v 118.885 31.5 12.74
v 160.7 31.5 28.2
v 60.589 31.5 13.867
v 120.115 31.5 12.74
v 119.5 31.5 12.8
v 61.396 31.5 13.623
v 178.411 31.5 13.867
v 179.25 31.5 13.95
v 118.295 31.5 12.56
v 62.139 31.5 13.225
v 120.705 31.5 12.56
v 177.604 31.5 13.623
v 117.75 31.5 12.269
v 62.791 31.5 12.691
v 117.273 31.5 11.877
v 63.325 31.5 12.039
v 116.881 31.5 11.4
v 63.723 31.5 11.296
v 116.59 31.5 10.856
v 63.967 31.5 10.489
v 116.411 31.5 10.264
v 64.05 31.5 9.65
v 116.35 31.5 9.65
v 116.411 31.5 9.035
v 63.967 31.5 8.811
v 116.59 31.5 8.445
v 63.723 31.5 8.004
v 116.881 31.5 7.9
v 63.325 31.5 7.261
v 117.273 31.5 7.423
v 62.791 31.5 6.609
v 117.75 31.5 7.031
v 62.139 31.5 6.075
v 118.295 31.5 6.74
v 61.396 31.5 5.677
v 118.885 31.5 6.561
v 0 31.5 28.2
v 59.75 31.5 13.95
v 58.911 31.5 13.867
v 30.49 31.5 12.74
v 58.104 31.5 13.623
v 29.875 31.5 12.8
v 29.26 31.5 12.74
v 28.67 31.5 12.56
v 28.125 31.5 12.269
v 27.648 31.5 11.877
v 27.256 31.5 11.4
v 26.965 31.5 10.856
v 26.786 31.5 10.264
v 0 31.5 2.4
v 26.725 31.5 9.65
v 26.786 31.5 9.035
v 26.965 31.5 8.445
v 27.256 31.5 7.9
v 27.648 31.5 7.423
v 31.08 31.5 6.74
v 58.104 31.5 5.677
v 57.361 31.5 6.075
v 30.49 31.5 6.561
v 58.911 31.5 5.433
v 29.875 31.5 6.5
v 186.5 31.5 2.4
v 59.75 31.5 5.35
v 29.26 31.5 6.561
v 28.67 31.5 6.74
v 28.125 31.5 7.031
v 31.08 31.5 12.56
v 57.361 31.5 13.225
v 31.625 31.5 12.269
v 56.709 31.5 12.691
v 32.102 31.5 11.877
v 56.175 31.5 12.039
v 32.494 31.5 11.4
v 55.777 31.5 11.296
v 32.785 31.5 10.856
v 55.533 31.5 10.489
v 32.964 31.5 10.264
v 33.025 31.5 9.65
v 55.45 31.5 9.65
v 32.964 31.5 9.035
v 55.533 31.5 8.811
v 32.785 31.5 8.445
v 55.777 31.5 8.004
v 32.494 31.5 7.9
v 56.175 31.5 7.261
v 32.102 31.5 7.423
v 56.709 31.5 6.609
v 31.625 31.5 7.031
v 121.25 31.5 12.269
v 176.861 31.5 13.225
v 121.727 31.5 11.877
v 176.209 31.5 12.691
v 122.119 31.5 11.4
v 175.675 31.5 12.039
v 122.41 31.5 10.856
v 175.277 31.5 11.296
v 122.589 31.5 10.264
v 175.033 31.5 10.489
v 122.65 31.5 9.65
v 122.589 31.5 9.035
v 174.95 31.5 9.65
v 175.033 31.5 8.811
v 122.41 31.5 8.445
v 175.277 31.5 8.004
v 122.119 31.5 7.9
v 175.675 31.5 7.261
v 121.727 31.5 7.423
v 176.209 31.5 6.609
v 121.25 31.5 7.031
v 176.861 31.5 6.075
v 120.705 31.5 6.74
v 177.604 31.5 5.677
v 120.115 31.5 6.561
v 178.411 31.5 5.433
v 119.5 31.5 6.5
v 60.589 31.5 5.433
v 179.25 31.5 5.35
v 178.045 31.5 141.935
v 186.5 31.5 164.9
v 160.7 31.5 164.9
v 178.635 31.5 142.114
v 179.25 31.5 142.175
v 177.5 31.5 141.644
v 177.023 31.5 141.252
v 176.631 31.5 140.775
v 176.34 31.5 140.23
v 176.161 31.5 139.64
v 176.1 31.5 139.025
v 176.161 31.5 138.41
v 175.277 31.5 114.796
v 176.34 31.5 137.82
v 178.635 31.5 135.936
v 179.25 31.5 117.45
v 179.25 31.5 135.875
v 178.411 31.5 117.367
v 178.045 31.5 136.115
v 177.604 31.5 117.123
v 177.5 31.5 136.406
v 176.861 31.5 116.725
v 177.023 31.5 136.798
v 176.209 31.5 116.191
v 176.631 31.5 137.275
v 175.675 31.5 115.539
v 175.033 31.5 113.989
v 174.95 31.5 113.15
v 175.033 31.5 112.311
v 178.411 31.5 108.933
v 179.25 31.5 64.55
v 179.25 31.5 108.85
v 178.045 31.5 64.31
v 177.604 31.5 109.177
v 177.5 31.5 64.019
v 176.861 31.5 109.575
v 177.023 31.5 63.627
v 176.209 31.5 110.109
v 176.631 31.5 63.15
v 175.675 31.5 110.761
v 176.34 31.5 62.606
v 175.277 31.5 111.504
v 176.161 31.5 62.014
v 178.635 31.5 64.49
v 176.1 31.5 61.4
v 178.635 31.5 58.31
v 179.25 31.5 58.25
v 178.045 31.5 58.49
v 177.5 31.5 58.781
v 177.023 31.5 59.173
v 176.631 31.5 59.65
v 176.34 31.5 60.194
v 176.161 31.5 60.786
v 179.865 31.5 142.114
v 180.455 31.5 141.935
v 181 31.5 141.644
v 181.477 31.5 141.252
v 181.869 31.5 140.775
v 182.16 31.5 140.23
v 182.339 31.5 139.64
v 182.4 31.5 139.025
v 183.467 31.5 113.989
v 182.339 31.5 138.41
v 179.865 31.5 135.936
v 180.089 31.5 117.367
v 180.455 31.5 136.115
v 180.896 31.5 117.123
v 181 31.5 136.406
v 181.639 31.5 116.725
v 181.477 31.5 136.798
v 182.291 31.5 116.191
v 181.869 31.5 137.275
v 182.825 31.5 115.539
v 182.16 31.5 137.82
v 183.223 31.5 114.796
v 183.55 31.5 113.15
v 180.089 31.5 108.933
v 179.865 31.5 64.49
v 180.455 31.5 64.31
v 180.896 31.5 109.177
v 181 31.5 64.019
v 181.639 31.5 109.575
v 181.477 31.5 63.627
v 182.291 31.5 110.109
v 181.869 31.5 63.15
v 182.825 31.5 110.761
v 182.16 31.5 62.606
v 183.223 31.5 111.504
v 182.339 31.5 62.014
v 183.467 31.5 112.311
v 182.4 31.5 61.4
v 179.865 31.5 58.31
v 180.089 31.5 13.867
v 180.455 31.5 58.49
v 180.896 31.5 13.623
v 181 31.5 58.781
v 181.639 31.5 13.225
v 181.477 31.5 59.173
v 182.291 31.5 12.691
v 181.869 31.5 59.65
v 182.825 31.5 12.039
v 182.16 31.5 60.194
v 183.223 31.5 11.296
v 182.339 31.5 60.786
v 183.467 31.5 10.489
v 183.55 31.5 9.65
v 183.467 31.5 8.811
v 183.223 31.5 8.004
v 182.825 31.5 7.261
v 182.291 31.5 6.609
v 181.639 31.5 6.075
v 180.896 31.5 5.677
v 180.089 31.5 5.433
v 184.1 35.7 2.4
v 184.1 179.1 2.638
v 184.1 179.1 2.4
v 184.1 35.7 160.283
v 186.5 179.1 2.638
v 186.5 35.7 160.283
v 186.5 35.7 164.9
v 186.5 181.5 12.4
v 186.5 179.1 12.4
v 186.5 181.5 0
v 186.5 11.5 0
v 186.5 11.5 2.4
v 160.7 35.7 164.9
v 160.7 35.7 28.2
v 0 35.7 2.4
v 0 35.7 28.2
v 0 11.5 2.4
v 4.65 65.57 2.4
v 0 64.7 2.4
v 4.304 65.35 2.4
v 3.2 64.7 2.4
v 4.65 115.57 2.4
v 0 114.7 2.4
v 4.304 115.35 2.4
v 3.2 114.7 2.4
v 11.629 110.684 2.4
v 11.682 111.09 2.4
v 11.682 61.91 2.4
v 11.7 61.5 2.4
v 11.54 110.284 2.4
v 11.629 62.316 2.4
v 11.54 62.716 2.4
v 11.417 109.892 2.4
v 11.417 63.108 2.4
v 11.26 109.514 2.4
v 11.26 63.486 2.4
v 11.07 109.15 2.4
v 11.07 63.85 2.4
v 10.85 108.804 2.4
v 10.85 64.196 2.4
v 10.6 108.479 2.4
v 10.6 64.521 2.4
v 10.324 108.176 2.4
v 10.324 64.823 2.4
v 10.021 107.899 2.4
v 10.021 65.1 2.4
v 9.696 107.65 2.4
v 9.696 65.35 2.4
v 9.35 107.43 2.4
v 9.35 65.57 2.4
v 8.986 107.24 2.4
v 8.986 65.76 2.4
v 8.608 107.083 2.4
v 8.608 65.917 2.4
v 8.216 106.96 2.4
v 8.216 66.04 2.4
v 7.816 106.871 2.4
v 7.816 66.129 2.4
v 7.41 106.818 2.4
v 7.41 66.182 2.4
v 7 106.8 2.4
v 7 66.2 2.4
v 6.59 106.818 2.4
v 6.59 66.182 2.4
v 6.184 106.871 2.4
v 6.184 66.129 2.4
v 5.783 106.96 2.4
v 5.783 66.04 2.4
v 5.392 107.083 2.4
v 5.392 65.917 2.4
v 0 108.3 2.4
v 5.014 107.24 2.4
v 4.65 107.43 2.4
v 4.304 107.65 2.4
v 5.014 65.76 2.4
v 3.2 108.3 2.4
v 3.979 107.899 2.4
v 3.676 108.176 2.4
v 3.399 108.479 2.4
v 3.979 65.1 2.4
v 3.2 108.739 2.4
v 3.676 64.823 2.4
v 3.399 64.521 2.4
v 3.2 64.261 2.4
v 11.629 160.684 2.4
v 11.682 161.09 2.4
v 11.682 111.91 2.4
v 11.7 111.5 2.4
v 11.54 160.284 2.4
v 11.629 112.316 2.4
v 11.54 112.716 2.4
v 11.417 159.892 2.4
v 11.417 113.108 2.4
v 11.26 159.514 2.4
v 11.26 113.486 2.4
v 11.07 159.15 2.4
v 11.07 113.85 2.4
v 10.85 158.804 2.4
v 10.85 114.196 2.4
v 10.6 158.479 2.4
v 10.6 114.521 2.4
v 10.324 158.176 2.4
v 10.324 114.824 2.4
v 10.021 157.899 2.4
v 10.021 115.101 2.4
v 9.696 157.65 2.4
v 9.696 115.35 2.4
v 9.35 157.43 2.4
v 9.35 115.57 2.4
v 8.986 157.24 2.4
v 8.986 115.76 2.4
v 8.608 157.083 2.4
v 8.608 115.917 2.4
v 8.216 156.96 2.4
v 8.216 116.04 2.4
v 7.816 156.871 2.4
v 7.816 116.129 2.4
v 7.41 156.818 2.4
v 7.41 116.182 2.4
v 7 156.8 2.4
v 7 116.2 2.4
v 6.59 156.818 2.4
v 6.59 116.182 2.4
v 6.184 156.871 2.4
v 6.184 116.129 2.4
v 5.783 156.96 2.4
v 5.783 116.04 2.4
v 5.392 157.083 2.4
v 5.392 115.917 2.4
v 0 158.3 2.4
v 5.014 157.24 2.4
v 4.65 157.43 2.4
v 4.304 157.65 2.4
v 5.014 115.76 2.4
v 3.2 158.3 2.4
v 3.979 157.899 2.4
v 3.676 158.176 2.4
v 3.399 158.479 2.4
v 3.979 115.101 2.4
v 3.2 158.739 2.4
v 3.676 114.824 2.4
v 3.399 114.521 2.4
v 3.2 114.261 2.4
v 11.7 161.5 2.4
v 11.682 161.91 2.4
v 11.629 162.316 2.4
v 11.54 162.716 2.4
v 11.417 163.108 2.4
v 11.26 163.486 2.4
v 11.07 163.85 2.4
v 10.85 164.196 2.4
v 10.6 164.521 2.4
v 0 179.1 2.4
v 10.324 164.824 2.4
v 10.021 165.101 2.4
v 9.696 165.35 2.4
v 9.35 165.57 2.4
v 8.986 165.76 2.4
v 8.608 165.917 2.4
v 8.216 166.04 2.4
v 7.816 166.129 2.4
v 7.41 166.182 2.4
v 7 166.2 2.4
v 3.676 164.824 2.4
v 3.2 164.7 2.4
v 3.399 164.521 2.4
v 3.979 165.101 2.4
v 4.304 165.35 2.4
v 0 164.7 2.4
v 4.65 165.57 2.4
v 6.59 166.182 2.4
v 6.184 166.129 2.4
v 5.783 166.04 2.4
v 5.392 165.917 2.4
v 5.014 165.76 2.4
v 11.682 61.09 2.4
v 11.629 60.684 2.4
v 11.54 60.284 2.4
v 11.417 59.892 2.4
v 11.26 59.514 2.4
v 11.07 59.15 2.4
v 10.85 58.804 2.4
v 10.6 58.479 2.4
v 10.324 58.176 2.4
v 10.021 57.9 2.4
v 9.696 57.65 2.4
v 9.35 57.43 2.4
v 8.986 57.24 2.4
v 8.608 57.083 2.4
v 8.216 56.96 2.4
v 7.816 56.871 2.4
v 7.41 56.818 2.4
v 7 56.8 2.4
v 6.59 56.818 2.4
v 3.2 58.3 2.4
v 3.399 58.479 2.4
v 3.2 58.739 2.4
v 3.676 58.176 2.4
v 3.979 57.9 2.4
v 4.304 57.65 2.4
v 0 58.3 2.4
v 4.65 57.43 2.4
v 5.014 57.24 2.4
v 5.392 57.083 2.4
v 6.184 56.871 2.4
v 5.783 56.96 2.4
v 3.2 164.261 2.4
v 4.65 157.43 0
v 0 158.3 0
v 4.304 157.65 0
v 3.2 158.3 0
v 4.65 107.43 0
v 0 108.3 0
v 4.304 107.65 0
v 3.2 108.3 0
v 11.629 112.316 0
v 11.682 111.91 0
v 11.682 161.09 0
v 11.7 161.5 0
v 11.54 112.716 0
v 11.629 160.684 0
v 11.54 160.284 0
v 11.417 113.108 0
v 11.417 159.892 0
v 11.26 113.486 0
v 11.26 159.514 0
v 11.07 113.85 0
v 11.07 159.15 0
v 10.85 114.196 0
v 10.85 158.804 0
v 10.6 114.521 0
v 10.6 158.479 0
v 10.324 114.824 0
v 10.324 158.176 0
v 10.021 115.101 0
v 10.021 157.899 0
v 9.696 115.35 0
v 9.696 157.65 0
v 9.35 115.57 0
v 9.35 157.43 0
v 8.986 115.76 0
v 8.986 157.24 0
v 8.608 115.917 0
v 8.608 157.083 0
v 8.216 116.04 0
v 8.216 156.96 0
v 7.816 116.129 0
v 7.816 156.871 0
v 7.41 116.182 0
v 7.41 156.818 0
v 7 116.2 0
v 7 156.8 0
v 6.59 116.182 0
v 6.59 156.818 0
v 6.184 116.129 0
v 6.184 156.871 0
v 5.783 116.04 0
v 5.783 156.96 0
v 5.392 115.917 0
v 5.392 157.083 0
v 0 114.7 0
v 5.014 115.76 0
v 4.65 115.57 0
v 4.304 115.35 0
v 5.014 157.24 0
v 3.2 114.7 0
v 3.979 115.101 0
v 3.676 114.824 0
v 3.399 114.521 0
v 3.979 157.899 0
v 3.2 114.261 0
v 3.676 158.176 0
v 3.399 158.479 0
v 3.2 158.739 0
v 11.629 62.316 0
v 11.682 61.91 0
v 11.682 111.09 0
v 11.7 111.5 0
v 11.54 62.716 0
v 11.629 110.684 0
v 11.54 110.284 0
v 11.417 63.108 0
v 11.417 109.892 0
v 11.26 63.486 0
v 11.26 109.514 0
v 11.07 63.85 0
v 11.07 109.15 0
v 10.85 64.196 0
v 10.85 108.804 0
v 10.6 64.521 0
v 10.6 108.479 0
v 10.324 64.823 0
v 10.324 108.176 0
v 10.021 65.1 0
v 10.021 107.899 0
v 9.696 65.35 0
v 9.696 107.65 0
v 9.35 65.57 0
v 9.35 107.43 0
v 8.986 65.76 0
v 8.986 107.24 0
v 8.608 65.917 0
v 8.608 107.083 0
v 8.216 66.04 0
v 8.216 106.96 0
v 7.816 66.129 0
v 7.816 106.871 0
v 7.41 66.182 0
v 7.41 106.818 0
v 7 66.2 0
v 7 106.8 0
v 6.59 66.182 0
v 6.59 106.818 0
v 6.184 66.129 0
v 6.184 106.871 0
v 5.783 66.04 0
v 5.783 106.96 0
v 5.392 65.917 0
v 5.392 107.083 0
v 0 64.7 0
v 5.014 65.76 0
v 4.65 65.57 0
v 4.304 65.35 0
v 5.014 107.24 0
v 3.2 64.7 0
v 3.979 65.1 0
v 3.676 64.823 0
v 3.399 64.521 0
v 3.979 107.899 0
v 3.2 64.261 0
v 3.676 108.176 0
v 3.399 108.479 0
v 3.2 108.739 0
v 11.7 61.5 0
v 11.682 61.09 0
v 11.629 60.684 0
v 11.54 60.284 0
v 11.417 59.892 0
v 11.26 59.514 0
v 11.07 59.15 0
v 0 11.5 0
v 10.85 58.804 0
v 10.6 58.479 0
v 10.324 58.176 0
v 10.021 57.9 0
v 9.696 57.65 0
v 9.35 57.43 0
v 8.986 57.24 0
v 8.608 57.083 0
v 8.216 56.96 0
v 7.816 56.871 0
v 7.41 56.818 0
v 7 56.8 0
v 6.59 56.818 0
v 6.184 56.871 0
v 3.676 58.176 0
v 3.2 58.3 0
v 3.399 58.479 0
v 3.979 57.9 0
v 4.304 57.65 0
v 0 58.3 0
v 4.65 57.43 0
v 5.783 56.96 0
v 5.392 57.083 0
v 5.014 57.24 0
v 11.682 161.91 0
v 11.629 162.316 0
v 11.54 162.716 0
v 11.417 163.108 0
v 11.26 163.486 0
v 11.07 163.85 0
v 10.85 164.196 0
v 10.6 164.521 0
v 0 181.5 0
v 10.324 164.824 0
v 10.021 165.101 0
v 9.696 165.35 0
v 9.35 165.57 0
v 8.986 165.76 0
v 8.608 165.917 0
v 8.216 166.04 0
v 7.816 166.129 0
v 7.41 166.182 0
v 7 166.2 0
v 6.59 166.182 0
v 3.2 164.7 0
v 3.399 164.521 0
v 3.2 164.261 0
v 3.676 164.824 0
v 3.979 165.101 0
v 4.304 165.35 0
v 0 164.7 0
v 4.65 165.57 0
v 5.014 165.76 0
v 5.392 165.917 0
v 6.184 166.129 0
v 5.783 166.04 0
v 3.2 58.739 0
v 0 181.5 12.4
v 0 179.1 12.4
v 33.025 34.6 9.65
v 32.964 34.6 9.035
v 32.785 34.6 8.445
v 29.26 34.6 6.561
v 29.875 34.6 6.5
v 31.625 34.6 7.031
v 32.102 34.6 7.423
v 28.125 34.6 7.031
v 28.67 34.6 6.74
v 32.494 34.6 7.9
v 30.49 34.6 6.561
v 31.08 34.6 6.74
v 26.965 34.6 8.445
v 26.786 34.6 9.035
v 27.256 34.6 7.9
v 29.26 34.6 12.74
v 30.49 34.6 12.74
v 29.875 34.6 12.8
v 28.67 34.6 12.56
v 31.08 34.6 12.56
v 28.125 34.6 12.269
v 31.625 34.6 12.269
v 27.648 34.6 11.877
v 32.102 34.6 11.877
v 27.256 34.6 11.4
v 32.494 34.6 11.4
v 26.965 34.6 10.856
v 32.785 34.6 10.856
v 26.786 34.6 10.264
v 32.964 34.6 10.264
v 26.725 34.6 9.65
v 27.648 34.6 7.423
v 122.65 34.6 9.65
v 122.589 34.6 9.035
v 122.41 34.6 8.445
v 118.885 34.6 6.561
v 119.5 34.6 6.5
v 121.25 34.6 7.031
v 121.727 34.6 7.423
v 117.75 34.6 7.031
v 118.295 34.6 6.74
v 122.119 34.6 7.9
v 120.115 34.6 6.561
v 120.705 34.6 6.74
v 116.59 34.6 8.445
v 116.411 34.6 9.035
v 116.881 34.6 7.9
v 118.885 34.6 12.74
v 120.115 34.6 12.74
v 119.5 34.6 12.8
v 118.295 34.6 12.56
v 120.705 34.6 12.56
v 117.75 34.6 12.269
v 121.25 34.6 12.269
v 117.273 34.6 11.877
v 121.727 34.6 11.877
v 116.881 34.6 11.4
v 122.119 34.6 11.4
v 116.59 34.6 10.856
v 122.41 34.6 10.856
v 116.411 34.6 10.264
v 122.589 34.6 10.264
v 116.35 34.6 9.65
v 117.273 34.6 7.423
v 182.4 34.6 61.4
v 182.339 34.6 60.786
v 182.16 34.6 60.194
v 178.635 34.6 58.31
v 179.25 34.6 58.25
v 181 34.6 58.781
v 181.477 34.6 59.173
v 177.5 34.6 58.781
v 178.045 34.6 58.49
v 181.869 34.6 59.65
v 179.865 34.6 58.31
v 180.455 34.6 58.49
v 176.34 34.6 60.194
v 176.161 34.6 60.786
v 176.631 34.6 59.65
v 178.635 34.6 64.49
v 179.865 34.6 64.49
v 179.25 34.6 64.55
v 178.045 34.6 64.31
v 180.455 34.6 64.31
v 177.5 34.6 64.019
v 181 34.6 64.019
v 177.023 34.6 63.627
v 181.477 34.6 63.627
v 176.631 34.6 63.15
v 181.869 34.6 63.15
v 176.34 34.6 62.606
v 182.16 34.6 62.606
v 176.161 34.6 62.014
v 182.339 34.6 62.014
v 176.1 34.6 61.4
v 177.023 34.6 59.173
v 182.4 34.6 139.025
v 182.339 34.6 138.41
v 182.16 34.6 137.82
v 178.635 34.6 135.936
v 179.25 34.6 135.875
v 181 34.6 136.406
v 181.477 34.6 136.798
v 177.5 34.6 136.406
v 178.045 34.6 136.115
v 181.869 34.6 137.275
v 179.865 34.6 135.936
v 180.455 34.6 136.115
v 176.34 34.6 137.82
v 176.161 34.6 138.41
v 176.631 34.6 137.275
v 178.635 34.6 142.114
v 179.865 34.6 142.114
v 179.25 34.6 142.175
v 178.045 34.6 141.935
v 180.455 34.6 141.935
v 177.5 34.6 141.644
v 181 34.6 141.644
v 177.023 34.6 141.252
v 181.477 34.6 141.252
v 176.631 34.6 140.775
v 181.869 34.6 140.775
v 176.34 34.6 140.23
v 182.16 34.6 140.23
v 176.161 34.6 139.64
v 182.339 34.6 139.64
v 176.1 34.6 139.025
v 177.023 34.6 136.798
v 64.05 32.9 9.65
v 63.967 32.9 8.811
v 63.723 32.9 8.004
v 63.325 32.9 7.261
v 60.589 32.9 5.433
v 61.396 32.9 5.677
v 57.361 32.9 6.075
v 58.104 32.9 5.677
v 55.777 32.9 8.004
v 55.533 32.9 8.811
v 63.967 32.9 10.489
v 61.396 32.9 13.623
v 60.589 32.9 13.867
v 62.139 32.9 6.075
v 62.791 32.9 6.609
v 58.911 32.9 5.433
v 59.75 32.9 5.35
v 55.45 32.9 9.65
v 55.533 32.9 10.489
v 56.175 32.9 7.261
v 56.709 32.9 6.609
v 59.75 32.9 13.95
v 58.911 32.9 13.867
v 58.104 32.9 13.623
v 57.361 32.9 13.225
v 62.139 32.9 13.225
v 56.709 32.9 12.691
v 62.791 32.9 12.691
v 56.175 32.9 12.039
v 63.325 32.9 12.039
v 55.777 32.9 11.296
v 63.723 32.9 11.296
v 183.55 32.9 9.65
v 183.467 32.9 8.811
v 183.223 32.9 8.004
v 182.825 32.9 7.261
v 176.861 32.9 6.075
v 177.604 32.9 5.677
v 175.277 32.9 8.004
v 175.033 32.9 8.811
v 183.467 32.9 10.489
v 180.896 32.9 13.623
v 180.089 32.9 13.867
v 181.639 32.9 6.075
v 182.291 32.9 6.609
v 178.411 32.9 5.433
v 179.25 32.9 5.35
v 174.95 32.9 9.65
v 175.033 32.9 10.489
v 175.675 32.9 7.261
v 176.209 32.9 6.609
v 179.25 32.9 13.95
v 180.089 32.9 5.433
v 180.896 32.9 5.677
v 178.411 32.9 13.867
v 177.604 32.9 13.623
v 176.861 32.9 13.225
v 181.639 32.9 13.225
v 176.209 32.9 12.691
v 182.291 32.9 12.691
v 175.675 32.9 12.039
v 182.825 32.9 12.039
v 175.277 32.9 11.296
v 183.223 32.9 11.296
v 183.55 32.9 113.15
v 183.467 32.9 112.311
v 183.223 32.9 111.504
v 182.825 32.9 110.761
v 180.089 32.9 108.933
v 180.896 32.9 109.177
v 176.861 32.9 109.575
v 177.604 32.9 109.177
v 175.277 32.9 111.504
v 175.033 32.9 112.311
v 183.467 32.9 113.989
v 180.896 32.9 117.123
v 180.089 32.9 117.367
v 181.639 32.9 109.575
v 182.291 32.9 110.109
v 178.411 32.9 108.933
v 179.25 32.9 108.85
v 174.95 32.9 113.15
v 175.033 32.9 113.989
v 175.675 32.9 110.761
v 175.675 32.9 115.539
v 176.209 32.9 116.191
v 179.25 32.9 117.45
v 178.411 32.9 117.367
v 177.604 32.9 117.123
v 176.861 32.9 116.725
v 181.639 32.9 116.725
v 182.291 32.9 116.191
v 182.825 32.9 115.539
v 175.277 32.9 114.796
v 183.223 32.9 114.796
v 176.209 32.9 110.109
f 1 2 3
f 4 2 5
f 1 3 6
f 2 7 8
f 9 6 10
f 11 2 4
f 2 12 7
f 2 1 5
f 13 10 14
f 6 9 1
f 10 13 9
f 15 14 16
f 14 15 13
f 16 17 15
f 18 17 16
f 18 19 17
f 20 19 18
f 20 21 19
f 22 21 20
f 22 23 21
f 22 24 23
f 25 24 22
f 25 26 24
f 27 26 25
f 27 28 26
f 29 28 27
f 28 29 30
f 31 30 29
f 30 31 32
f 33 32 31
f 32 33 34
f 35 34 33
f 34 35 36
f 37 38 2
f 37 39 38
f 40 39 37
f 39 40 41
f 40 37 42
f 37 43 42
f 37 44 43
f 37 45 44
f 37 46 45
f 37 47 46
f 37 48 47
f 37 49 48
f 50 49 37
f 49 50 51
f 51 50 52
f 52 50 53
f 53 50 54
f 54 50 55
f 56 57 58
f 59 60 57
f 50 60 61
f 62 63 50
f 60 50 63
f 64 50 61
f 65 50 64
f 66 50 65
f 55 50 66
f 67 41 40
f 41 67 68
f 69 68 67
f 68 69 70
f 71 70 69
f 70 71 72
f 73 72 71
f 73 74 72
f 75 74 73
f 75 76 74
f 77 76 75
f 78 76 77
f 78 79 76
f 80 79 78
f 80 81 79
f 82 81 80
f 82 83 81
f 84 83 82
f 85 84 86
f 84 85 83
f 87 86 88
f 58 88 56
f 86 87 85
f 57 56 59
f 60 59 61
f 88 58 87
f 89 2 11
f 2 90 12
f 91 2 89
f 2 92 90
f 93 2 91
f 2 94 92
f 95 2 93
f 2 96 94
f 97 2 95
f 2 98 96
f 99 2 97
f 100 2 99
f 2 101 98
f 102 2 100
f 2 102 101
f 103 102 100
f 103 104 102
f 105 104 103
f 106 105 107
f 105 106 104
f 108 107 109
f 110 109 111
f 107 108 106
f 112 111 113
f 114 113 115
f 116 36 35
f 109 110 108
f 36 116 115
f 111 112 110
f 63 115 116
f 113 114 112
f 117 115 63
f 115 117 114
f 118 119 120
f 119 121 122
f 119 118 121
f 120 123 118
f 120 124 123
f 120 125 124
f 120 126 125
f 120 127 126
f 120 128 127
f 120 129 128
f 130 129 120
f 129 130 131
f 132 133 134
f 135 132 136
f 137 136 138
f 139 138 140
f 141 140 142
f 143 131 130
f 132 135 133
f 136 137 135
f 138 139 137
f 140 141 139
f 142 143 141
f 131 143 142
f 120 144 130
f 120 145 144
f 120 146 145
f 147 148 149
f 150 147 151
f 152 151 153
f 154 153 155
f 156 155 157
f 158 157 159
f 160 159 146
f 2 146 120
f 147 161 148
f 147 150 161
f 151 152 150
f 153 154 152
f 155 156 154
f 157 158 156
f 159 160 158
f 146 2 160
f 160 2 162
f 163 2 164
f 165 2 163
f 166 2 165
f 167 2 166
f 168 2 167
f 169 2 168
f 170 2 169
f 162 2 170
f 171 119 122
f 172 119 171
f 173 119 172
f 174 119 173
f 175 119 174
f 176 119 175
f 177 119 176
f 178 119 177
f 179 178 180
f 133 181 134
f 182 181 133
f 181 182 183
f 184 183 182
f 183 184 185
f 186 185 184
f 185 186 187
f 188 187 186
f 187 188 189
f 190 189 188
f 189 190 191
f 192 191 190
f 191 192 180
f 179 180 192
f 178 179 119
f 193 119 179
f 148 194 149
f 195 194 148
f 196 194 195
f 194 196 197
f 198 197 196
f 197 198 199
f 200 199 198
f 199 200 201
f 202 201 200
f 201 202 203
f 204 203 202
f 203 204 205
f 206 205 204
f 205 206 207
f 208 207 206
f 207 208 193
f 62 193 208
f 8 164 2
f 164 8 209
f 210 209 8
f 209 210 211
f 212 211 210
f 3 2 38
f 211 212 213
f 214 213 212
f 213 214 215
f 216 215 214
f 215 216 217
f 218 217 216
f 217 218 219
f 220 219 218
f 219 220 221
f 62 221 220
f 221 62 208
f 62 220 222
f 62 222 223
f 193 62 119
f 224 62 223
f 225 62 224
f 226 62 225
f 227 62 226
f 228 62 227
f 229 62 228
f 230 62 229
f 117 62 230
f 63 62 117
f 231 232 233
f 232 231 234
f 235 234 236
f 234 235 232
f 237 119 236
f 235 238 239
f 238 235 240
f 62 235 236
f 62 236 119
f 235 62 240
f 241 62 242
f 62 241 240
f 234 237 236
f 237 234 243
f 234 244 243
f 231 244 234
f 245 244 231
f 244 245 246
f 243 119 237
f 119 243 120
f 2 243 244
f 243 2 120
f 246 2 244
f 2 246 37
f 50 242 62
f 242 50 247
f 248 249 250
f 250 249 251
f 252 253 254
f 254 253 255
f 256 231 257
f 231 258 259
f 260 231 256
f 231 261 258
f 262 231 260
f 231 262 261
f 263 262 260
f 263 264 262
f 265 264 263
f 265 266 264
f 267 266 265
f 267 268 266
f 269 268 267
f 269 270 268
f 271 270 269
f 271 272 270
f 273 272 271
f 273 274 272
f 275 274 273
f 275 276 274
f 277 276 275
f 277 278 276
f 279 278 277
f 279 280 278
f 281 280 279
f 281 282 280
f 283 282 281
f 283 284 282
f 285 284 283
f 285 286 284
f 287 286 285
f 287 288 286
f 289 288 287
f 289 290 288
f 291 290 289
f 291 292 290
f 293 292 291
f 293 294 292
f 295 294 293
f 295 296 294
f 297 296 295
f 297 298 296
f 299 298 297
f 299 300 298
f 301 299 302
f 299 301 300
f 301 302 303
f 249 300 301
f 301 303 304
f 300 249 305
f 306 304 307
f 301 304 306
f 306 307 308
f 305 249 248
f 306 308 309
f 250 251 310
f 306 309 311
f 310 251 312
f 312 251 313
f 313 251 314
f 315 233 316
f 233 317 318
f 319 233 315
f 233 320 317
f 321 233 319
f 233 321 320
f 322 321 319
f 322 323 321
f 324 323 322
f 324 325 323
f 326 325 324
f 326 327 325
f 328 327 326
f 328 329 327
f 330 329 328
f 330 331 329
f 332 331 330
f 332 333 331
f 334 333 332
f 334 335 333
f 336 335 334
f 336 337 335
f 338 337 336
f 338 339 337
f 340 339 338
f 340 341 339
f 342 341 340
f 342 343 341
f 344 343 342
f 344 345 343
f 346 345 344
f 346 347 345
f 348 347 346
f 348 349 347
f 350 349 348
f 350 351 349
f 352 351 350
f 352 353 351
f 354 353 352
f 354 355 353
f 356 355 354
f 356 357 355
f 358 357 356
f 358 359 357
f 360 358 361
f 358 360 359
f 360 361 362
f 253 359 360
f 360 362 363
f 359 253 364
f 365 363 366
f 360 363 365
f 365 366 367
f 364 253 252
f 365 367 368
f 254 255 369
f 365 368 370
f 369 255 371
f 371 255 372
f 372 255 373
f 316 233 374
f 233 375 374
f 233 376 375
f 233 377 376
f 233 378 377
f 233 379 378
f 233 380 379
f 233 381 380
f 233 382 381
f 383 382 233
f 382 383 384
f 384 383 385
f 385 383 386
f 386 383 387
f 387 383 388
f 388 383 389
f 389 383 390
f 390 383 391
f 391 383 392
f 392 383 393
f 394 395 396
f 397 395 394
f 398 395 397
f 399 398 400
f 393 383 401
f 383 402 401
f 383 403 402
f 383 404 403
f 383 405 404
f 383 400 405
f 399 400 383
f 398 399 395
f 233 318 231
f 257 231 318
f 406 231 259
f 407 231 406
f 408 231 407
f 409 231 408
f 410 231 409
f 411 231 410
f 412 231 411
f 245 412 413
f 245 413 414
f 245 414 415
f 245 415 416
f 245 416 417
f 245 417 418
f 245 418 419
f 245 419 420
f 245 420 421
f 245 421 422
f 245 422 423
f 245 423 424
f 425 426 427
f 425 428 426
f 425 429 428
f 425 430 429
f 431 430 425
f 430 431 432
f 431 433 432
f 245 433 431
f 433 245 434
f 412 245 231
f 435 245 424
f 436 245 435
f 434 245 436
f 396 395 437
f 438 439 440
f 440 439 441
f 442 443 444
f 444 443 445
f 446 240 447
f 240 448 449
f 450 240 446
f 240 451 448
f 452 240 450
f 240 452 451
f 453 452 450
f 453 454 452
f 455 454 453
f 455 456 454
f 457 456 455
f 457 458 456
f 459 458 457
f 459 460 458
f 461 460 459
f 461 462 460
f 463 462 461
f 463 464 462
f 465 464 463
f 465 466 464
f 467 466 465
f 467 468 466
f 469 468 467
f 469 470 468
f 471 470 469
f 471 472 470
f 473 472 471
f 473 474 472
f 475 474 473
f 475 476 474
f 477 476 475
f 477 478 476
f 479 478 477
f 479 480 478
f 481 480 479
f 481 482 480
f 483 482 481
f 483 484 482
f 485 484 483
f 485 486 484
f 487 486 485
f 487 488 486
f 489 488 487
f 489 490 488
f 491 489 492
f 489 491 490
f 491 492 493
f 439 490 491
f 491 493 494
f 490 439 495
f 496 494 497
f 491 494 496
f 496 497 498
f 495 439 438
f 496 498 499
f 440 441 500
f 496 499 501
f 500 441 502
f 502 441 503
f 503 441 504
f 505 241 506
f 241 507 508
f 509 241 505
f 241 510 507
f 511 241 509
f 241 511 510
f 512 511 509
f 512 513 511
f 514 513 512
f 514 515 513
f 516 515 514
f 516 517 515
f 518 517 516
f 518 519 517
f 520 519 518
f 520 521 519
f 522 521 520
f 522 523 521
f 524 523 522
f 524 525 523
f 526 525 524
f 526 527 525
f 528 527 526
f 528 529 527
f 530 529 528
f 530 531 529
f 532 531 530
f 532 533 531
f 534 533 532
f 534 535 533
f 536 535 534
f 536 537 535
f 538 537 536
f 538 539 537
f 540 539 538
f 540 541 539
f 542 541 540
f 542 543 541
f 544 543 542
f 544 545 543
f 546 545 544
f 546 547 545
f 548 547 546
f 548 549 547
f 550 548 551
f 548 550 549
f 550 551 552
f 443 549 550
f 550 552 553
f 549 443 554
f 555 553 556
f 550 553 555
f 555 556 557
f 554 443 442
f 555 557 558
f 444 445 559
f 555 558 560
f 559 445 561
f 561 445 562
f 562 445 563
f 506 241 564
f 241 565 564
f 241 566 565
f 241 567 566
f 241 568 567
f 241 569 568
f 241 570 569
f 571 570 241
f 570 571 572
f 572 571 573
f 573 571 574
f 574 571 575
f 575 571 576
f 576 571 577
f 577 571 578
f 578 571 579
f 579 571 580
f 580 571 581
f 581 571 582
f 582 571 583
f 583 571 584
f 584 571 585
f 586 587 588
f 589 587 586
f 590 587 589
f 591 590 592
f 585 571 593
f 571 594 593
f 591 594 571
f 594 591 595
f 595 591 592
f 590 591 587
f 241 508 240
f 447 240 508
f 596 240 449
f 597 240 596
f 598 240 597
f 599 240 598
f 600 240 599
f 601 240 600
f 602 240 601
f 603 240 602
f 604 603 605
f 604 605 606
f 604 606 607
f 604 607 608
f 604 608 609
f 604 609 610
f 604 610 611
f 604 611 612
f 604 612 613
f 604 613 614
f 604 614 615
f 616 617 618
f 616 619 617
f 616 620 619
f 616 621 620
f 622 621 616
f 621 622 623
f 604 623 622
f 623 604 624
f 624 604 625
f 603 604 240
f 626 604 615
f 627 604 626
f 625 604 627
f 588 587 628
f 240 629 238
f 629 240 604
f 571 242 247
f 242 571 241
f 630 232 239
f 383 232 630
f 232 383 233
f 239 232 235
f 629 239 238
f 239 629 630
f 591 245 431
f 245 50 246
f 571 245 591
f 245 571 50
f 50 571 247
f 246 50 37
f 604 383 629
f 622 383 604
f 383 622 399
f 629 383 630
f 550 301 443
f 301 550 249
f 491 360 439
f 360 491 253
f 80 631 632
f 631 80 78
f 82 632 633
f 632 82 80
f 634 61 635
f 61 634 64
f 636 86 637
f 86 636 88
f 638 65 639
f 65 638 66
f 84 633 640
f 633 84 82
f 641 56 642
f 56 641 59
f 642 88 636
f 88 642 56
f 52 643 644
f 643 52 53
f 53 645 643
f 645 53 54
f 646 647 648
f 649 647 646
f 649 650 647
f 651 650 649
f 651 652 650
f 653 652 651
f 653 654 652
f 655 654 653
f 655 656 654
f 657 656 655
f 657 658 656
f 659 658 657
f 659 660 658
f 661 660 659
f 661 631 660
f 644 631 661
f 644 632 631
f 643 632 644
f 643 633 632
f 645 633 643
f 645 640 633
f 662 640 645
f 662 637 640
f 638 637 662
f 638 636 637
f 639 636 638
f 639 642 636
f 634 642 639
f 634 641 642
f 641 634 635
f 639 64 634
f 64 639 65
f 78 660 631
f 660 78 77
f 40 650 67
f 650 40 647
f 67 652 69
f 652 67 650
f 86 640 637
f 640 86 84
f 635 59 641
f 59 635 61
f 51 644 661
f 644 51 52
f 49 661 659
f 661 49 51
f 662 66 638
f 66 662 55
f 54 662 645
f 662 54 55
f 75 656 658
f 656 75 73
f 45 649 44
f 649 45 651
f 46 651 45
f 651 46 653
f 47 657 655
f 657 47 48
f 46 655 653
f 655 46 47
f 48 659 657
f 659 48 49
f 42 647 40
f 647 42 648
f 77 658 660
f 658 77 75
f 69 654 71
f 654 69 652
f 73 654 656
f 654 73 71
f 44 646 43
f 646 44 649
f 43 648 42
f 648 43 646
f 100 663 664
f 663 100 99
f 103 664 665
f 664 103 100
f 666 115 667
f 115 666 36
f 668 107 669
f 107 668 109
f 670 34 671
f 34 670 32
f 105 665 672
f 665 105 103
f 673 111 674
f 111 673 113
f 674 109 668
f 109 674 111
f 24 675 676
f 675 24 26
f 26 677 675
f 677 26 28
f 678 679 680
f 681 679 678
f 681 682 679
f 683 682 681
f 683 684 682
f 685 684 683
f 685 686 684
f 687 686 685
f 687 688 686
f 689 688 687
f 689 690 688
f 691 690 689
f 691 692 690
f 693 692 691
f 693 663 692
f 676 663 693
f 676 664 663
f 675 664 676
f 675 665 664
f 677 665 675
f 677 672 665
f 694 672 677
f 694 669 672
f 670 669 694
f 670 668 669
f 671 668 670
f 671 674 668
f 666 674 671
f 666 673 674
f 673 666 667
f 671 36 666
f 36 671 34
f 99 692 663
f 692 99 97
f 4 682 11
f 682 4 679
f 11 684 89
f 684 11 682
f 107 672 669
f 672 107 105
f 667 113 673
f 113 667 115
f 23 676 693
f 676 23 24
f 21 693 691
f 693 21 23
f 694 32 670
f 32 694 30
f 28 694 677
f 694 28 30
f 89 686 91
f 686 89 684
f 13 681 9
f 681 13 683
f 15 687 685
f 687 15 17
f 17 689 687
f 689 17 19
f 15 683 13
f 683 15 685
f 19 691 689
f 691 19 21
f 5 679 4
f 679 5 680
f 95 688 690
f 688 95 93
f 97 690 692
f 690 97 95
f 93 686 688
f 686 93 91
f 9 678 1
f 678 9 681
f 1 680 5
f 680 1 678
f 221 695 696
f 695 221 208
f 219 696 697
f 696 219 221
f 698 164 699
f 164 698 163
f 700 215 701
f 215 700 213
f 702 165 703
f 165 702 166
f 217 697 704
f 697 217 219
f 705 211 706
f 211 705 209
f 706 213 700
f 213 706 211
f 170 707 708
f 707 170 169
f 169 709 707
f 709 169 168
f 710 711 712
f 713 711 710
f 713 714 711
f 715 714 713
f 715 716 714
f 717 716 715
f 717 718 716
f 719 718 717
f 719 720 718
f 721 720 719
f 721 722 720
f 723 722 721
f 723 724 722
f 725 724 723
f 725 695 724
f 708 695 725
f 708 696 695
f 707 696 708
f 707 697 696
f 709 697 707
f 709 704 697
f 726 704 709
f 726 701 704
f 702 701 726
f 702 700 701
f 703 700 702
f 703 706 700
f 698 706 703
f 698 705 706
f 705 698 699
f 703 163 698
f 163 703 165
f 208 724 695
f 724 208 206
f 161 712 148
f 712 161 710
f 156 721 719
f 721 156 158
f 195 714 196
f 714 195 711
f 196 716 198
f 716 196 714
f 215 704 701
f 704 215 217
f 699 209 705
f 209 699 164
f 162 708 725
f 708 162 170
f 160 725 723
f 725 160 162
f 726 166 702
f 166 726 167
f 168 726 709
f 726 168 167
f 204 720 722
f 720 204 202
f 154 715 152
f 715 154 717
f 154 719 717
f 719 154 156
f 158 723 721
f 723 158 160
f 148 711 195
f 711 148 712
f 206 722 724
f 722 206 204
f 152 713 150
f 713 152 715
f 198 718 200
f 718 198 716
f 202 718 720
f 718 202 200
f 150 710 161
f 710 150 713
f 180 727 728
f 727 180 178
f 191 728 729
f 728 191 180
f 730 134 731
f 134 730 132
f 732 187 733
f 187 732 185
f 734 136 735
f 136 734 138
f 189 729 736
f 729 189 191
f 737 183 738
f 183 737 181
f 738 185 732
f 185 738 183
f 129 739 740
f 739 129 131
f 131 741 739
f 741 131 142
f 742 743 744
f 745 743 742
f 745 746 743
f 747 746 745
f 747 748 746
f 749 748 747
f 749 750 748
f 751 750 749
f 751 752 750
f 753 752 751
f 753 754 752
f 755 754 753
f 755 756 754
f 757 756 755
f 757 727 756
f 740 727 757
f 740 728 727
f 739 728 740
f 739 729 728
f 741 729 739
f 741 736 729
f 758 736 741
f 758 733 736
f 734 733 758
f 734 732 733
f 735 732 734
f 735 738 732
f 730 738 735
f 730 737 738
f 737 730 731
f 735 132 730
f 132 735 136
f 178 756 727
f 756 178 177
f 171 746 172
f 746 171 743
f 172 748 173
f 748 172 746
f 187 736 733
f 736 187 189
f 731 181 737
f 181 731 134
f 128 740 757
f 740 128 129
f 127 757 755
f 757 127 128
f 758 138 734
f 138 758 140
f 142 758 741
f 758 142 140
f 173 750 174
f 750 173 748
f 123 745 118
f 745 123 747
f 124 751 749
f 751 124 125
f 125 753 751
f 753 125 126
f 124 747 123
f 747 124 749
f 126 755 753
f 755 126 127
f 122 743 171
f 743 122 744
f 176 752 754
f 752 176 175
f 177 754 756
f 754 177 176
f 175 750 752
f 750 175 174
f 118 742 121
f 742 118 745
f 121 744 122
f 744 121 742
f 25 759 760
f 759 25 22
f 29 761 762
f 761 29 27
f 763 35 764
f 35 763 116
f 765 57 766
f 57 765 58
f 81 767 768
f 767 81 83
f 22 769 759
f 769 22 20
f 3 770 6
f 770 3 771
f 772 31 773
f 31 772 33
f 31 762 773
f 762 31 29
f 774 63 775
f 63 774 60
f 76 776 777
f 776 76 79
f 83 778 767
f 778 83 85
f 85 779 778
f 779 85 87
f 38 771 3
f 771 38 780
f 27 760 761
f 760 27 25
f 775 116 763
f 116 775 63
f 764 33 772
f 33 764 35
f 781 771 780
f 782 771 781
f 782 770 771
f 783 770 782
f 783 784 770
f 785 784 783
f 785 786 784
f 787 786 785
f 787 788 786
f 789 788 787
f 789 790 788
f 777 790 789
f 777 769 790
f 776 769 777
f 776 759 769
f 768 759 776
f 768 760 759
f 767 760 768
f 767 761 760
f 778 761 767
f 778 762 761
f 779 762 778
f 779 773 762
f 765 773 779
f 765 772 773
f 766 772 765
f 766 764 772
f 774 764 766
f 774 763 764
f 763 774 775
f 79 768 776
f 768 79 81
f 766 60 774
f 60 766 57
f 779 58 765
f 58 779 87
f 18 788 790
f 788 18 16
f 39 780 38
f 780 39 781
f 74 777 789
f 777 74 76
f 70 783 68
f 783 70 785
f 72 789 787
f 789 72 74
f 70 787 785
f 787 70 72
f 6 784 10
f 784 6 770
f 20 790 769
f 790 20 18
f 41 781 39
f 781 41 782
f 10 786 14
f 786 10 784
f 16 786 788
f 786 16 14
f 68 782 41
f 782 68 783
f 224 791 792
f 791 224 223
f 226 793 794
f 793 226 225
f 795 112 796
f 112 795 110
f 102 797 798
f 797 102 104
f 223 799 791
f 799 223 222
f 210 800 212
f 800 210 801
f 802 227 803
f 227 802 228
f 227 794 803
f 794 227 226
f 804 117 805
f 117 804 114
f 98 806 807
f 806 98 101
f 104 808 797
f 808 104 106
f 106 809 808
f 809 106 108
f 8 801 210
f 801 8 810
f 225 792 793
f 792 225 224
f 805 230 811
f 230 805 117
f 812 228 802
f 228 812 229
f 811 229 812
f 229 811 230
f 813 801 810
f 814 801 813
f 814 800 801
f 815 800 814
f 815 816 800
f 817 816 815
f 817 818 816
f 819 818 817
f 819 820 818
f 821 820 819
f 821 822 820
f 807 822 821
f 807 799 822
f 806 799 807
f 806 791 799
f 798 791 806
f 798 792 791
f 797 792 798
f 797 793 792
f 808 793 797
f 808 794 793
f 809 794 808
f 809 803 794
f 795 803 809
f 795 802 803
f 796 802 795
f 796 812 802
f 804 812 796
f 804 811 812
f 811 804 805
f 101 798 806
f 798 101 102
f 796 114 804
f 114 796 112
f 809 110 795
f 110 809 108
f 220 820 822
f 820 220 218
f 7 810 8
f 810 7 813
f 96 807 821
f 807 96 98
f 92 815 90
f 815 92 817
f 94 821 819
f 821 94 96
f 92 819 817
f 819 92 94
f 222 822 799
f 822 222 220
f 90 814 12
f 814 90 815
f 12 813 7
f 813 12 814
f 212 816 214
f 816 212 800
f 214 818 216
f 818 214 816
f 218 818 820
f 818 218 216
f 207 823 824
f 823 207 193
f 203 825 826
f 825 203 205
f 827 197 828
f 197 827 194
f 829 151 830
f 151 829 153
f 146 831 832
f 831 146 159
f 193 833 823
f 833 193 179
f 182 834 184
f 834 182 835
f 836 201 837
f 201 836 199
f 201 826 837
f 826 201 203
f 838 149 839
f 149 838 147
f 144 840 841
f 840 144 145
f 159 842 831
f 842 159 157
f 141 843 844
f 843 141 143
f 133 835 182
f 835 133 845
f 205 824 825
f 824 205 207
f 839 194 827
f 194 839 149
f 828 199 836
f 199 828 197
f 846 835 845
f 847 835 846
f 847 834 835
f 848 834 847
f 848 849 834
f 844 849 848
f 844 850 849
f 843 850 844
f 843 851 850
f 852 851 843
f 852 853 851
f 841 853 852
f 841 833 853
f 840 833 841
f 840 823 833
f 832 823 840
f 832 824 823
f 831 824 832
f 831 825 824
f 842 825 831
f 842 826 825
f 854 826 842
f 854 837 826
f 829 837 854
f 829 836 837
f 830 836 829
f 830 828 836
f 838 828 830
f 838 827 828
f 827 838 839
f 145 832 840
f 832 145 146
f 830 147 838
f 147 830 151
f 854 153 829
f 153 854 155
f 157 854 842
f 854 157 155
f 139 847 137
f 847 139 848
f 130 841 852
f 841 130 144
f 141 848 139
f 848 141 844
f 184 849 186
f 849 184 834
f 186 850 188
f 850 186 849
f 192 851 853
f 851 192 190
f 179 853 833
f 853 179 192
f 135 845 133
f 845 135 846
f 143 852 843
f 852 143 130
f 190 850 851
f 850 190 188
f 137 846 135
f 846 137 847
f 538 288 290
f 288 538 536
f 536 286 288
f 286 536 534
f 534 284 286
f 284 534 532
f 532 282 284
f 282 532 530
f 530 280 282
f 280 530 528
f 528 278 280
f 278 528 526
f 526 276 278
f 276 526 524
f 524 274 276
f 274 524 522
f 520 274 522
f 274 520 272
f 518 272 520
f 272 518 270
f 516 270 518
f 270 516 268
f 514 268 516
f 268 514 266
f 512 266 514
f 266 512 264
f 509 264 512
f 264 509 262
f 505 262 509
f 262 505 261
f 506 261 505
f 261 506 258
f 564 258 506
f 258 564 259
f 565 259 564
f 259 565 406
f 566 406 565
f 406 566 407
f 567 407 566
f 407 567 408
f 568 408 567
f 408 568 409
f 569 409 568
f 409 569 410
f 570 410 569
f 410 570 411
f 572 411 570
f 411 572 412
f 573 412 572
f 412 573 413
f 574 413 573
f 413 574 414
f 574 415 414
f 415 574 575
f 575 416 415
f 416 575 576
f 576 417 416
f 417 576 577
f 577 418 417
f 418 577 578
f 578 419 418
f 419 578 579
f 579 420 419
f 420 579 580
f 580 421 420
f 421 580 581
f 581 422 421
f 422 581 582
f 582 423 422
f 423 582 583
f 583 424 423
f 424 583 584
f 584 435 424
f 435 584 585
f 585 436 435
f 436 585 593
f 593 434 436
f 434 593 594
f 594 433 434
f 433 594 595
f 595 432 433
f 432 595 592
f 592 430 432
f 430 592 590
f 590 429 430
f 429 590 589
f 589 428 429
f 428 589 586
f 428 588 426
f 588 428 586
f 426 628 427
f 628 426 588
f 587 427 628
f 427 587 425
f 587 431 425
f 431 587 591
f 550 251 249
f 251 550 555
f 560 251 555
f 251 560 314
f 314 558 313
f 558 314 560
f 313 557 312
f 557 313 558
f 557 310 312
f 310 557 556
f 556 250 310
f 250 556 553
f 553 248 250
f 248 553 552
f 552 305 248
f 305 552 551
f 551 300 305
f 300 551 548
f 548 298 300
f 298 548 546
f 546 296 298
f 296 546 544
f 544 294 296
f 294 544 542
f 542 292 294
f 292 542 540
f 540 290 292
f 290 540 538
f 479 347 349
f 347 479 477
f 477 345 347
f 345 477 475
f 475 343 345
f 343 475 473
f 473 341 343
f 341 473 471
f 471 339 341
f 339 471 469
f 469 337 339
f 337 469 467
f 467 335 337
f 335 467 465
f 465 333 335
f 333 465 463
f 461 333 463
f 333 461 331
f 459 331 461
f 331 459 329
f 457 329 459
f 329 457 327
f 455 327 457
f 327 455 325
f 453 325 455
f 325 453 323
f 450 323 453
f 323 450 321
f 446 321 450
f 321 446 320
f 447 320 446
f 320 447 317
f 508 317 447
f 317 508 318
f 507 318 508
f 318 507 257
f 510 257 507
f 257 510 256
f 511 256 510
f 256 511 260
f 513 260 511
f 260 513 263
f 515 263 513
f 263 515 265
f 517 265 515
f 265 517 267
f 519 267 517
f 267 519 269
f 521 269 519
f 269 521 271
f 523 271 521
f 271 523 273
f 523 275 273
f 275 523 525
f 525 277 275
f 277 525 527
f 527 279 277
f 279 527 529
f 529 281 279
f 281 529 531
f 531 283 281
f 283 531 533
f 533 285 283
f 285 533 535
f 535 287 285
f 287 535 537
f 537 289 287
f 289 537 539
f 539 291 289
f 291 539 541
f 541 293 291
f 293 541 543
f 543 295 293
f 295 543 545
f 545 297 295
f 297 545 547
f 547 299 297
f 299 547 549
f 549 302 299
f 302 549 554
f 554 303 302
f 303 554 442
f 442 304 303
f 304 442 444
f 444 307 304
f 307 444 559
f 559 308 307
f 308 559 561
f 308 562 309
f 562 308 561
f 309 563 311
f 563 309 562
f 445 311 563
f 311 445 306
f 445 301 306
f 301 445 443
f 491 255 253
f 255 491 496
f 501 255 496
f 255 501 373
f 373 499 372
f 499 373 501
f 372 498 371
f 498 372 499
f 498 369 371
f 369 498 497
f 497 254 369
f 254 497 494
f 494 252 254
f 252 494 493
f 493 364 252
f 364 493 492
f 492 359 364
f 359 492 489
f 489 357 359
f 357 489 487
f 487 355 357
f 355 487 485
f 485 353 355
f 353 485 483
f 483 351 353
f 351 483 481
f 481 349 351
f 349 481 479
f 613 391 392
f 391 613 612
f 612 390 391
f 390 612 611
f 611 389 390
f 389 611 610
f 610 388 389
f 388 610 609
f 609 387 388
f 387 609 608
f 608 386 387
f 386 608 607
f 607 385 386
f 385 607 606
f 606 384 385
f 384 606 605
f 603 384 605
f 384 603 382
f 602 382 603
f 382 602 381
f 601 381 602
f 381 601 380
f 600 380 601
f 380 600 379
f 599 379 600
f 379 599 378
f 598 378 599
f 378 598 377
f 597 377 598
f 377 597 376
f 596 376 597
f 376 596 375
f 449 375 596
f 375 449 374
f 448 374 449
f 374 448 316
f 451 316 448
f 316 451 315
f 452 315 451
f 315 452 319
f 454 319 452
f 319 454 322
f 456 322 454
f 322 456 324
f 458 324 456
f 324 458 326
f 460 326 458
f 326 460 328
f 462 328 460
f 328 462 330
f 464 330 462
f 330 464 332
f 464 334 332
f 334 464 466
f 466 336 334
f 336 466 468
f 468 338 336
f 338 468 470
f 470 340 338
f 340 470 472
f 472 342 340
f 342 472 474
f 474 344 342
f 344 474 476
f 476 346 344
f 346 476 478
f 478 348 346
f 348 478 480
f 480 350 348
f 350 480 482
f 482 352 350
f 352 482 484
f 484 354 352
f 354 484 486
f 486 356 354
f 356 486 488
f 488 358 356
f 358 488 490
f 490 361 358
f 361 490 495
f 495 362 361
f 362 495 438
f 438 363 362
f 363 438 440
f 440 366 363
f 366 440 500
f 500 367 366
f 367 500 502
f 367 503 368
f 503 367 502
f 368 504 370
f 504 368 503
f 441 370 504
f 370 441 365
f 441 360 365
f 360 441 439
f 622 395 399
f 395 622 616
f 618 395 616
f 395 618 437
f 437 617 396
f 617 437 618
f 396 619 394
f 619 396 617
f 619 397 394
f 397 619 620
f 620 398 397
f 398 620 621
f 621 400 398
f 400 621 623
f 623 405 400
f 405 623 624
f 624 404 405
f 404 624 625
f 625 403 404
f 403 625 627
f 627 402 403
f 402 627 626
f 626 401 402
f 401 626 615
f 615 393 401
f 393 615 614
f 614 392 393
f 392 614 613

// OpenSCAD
// P18 — Visor, right half V2. Canopy top face on the bed. CLEAR PLA, 100%.
// Needs lfh_v1_reference.scad in the same folder.
include <lfh_v1_reference.scad>
part = "V2";
pose = "print";
